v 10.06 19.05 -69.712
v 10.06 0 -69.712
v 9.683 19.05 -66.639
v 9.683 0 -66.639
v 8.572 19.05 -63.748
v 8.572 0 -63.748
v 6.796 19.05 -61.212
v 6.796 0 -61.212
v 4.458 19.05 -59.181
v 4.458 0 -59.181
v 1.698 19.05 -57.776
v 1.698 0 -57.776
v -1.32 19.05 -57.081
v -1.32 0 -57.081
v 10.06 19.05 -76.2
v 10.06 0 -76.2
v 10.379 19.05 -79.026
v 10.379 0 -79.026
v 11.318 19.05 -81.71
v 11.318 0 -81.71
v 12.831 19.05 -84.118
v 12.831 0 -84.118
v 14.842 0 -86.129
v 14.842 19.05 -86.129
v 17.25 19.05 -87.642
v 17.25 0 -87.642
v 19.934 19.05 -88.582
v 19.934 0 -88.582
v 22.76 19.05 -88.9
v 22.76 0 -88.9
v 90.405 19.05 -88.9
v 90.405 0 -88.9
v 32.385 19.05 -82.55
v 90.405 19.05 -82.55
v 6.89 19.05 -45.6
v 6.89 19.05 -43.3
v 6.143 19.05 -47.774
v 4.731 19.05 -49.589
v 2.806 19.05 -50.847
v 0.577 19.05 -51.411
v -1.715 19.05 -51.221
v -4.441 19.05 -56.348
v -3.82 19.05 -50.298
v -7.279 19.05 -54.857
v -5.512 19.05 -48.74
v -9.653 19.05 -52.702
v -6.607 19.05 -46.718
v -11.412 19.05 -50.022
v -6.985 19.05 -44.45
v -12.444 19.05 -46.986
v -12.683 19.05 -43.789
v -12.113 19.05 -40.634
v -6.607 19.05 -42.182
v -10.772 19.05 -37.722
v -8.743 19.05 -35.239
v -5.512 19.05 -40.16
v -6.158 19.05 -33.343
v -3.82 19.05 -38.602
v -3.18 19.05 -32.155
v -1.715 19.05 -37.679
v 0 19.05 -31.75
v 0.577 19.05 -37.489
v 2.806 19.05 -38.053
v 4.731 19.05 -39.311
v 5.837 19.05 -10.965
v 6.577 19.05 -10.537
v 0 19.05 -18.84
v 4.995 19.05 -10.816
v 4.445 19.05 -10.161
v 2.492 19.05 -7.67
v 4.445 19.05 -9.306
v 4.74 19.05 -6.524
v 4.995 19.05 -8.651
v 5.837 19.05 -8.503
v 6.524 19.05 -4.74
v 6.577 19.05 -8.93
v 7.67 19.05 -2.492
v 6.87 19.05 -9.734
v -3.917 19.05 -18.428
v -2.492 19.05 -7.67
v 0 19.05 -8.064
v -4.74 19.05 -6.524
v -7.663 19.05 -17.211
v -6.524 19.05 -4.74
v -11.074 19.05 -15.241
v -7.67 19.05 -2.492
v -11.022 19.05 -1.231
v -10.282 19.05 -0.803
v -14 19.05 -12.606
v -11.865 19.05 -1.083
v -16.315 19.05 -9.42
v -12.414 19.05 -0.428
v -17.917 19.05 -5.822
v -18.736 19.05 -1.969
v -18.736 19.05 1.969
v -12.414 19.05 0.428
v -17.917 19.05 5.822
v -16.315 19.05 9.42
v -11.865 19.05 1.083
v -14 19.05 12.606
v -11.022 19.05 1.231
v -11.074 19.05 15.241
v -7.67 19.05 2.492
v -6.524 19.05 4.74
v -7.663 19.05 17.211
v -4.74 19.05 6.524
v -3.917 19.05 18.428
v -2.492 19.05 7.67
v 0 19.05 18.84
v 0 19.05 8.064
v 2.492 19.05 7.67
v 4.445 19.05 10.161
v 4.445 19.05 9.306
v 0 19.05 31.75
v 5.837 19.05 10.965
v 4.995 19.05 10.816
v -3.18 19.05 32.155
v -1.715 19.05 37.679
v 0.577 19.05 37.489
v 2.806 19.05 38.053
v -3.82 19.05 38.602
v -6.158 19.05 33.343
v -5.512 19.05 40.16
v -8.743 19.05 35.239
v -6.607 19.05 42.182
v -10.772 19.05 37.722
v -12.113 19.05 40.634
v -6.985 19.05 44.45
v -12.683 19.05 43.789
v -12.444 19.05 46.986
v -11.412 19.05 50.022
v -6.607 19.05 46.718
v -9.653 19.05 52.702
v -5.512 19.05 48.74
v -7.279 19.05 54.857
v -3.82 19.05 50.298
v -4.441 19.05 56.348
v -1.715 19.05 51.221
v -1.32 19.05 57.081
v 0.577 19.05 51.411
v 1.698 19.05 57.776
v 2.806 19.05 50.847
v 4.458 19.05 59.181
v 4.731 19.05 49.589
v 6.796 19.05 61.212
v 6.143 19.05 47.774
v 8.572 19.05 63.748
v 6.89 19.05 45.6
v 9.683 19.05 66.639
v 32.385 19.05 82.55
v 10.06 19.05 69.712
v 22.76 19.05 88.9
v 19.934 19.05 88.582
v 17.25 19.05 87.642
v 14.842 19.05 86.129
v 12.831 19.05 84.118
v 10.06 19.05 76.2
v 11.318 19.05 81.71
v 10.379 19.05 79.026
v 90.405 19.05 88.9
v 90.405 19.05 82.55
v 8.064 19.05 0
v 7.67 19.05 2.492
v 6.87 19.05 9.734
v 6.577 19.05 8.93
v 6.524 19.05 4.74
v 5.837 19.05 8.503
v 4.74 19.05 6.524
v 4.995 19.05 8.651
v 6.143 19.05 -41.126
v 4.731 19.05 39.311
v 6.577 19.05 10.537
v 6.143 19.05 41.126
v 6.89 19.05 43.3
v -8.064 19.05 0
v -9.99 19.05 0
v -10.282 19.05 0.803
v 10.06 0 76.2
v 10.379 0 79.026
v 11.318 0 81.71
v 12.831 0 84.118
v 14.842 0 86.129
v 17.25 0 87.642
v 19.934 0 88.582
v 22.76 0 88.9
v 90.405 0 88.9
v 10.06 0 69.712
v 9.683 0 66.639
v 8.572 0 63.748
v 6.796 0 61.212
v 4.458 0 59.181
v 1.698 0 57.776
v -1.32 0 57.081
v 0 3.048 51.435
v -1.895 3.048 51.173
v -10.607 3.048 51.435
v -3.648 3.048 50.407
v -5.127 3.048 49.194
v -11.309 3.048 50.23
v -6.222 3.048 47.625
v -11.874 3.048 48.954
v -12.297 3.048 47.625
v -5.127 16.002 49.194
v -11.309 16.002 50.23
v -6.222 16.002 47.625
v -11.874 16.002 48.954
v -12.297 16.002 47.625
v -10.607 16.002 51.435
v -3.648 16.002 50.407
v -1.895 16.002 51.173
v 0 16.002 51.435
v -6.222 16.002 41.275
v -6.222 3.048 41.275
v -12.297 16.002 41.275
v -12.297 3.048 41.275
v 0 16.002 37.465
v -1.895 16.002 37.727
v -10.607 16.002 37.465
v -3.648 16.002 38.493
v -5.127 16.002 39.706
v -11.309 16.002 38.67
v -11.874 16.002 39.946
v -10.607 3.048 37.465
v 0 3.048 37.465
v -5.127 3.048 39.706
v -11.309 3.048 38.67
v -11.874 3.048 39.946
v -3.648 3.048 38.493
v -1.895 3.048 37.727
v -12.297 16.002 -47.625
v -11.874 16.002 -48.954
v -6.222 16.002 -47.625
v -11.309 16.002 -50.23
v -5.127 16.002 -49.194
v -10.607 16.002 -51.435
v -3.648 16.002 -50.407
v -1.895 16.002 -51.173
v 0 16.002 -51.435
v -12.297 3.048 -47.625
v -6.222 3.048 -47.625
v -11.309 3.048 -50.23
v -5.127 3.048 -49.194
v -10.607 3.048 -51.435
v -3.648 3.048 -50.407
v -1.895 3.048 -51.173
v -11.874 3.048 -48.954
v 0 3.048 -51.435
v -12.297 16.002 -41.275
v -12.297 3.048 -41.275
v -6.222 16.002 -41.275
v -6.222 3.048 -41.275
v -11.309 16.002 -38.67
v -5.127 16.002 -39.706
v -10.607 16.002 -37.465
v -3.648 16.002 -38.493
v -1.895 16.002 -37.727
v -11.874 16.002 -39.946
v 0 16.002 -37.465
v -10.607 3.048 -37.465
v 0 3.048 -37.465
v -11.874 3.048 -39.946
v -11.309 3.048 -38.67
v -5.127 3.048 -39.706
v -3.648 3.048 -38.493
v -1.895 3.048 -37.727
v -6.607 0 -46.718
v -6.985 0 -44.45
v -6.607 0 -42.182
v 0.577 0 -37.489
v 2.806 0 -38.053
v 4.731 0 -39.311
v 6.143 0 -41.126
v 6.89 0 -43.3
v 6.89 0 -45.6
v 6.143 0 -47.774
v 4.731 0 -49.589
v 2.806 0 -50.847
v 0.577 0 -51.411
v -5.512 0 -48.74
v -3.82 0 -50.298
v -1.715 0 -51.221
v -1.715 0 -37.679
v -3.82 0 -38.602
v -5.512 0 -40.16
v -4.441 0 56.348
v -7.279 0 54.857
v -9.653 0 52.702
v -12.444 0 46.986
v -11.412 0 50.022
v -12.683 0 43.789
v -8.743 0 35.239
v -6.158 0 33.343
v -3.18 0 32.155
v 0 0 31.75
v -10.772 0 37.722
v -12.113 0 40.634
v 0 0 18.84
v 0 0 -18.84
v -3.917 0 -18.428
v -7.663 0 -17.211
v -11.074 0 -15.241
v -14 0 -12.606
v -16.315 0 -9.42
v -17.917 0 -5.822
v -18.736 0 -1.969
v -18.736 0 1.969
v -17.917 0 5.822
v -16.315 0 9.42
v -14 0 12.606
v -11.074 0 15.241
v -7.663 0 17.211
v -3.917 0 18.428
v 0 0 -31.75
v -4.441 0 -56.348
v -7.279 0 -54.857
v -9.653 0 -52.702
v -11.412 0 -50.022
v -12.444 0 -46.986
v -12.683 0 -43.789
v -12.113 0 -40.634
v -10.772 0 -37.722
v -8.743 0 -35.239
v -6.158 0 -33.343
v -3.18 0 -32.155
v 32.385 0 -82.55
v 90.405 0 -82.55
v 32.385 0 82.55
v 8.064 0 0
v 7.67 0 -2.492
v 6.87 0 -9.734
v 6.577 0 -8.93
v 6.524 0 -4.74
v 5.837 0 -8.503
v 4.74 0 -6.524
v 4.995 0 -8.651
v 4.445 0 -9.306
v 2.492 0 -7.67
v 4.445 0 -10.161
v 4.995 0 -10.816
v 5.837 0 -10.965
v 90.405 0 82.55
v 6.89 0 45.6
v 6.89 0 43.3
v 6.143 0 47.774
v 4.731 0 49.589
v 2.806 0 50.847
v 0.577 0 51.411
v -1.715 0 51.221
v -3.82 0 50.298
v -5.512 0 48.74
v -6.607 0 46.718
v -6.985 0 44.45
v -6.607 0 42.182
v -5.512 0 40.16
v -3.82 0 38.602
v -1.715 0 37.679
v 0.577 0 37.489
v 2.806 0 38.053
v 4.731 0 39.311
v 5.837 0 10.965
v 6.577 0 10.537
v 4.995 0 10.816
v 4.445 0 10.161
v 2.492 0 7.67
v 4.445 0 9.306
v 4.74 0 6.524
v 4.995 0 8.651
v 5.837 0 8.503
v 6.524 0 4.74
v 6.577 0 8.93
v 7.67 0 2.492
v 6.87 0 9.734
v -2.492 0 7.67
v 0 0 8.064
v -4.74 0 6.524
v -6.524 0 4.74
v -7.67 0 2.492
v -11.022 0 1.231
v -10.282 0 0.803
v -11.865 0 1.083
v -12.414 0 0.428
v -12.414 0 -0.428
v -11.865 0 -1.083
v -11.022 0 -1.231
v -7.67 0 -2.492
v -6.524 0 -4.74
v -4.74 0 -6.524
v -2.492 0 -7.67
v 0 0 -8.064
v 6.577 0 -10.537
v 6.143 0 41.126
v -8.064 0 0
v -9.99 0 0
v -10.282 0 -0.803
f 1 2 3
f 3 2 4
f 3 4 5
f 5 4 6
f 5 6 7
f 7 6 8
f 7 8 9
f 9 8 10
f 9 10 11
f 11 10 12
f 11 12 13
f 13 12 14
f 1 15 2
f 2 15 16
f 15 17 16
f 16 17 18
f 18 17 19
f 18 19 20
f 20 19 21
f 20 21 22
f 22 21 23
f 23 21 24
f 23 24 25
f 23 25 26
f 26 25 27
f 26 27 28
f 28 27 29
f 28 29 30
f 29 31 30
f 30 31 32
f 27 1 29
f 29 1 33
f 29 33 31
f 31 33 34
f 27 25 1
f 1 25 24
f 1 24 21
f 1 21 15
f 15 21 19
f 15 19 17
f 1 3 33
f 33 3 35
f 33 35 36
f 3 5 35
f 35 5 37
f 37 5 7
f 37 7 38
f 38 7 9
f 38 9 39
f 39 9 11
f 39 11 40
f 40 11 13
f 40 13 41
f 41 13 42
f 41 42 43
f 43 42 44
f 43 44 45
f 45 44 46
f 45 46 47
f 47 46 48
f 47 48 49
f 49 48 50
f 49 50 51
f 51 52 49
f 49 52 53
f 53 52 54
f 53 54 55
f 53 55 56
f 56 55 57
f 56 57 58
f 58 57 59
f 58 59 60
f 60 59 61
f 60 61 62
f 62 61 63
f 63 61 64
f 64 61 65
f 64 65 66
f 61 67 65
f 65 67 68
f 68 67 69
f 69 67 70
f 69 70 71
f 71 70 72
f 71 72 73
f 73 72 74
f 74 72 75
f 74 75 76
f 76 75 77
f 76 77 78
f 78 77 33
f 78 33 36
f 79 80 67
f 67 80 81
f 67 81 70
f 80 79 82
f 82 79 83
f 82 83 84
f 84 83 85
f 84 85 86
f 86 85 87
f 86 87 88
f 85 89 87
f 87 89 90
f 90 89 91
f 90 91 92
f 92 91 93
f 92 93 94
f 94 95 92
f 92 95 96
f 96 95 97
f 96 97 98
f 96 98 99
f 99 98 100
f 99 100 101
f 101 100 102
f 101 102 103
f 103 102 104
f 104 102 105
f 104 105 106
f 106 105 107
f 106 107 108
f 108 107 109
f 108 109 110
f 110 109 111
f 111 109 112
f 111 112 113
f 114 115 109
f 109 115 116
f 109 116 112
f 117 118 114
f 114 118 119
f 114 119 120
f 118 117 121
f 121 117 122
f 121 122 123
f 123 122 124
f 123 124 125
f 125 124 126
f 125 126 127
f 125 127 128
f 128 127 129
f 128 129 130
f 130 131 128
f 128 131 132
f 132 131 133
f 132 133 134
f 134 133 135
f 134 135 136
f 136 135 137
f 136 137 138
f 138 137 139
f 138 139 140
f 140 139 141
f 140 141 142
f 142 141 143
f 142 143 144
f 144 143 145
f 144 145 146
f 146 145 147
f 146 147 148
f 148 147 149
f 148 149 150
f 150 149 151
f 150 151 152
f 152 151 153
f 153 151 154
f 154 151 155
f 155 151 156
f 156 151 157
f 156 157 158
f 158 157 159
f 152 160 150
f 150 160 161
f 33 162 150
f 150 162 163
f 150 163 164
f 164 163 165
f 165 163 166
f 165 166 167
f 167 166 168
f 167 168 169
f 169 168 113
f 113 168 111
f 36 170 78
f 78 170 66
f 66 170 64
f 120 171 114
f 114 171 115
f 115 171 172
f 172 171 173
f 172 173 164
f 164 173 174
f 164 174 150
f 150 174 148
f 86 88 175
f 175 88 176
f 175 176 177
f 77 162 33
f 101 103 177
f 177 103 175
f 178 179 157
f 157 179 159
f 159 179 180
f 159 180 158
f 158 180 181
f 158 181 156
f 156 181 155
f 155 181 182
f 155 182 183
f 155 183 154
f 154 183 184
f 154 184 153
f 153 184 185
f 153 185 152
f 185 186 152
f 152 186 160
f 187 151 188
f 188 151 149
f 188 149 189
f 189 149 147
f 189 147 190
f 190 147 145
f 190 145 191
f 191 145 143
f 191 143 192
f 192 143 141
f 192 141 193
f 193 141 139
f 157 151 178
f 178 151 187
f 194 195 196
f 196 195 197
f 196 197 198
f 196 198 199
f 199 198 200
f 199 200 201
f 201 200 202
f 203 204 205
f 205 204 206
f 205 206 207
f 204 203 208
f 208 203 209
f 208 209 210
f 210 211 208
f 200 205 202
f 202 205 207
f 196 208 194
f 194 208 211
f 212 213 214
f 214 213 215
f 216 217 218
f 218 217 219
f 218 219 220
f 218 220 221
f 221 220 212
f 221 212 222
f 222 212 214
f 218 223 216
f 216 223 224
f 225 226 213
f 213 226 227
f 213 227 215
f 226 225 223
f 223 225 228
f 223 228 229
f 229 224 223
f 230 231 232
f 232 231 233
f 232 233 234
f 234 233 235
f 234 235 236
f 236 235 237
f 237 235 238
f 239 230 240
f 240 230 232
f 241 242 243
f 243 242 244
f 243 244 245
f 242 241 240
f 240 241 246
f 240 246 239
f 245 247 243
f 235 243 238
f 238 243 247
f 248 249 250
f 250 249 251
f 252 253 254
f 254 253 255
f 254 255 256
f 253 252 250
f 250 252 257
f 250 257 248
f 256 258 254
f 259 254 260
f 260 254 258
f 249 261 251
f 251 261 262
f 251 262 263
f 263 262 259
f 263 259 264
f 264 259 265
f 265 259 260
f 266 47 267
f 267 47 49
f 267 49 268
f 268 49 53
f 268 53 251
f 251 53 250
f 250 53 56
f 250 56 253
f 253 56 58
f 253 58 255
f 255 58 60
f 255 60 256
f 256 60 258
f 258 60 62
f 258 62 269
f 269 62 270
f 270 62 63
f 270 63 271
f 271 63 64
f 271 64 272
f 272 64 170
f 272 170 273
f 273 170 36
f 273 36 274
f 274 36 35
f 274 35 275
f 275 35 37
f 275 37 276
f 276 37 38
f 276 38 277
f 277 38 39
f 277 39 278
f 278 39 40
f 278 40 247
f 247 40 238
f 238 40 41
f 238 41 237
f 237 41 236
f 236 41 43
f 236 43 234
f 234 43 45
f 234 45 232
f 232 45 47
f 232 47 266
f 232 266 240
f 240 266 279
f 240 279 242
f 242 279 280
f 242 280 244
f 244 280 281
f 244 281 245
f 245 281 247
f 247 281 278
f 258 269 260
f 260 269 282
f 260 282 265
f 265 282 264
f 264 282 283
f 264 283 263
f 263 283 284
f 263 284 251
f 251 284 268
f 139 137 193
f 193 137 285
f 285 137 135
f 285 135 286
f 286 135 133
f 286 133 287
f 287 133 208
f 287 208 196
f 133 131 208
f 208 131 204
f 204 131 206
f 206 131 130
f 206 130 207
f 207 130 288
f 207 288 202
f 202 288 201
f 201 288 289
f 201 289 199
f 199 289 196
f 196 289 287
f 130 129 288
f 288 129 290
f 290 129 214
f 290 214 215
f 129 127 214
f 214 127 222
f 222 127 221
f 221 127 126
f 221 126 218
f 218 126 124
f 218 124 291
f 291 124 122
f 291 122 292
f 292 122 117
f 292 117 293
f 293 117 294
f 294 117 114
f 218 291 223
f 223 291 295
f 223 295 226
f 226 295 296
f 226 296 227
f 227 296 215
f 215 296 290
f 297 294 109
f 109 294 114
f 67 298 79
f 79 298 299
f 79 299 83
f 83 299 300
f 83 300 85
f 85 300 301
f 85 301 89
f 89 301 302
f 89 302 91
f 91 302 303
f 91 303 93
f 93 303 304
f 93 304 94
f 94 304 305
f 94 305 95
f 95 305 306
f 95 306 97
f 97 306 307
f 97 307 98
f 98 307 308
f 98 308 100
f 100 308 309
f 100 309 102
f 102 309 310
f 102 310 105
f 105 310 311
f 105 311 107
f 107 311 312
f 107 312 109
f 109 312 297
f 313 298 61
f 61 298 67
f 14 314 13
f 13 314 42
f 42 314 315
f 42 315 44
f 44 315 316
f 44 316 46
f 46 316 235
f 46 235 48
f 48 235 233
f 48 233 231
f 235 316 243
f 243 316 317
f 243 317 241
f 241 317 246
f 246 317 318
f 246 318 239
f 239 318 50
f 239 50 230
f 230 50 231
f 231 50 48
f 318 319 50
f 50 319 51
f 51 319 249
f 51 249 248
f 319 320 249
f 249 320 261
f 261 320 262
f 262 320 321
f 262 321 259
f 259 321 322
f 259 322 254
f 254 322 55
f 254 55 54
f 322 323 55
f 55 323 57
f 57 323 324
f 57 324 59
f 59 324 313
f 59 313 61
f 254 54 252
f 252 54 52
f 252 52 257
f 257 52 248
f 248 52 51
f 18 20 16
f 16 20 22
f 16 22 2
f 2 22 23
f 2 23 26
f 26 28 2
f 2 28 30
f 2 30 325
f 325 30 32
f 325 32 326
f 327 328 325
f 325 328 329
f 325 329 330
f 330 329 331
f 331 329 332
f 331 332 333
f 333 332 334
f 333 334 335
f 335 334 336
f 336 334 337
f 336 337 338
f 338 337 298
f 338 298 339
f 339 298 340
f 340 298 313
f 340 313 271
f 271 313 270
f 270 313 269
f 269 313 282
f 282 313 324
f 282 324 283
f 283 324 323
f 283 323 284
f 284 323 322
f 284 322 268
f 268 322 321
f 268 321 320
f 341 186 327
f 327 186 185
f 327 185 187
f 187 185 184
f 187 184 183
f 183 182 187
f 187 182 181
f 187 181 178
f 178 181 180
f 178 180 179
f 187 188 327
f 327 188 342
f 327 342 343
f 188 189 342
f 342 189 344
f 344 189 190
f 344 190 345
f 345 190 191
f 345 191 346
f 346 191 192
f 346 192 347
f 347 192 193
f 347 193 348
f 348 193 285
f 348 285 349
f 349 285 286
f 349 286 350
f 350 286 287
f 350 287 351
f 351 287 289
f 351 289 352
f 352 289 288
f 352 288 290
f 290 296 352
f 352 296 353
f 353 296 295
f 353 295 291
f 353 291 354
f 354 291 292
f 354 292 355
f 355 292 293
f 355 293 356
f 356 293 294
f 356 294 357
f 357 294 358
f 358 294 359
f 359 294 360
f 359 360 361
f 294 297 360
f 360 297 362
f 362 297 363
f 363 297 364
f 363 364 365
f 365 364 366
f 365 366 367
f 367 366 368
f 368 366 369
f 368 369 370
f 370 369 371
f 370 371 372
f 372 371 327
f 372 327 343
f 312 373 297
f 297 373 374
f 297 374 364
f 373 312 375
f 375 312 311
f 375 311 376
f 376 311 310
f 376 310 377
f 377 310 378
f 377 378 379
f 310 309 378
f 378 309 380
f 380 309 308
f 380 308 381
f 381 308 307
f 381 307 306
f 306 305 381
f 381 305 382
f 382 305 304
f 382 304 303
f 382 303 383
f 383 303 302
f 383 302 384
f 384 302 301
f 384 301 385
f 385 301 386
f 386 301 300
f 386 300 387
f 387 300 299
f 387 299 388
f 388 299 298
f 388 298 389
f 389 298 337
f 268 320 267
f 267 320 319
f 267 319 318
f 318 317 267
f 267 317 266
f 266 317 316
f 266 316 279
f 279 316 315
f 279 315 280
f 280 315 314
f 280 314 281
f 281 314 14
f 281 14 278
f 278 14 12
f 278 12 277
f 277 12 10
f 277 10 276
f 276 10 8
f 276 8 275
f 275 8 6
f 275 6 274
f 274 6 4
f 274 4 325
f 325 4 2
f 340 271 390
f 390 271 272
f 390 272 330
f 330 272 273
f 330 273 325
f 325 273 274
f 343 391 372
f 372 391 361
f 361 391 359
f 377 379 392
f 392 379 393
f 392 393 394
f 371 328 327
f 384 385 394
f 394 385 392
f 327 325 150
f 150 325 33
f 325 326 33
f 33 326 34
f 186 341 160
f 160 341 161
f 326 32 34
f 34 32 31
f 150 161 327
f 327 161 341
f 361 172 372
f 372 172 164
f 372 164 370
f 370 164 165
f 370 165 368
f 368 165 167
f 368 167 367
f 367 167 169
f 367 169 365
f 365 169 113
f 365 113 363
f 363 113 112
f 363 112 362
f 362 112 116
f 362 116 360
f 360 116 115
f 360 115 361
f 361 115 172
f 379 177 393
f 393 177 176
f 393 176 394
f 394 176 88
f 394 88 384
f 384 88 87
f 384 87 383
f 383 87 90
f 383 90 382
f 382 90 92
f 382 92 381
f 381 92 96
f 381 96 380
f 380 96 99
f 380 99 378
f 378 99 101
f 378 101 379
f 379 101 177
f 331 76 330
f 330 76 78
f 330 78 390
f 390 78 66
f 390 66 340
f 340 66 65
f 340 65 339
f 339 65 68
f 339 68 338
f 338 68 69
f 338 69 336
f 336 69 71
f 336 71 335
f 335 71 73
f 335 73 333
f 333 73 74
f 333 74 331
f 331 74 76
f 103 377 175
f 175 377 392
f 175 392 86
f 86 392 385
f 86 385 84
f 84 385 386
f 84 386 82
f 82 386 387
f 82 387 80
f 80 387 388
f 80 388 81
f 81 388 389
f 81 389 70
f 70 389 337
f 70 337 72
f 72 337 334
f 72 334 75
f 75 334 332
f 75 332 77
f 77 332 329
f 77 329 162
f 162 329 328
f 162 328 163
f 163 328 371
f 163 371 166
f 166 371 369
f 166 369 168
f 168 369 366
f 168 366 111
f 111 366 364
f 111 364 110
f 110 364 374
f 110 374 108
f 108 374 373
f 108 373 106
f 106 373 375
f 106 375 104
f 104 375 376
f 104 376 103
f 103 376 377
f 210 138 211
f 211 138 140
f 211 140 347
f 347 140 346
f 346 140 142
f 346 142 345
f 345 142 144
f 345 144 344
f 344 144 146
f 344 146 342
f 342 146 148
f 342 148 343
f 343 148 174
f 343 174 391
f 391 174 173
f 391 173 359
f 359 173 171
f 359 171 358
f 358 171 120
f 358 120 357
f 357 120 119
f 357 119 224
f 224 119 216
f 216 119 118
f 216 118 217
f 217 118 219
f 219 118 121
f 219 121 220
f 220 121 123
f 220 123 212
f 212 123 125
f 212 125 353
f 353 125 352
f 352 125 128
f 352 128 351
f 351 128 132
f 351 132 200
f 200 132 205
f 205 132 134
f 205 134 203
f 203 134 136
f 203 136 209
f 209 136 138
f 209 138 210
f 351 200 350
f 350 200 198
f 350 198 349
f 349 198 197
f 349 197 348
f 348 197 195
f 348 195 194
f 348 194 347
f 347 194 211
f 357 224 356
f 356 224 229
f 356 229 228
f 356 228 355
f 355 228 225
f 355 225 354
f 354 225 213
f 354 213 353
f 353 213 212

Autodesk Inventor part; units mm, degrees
ref_plane "YZ Plane" through (0, 0, 0) normal (1, 0, 0) x (0, 1, 0)
sketch "Sketch1" plane through (0, 0, 0) normal (0, 1, 0) x (-1, 0, 0)
  circle A0 centre (0, 0) radius 8.0645
  circle A1 centre (0, -44.45) radius 6.985
  circle A2 centre (0, 44.45) radius 6.985
  line L0 (-39.6048, 88.9) -> (39.6048, 88.9)
  line L1 (39.6048, 88.9) -> (39.6048, -88.9)
  line L2 (39.6048, -88.9) -> (-39.6048, -88.9)
  line L3 (-39.6048, -88.9) -> (-39.6048, 88.9)
  line L4 (-39.6048, 88.9) -> (39.6048, -88.9) construction
  line L5 (39.6048, 88.9) -> (-39.6048, -88.9) construction
  line L6 (10.9754, 63.5) -> (10.9754, 0) construction
  point P0 (0, 0)
  point P1 (0, 0)
  dimension "d0" = 16.129
  dimension "d1" = 13.97
  dimension "d2" = 13.97
  dimension "d28" = 177.8
  dimension "d82" = 44.45
  dimension "d83" = 44.45
extrude "Extrusion4" add sketch "Sketch1" along normal blind 19.05
ref_plane "Work Plane2" through (0, 19.05, 0) normal (0, 1, 0) x (1, 0, 0)
sketch "Sketch2" plane through (0, 19.05, 0) normal (0, 1, 0) x (1, 0, 0)
  circle A0 centre (-11.2395, 0) radius 1.25
  circle A1 centre (0, 0) radius 7.94 projected
  circle A2 centre (5.6197, -9.7337) radius 1.25
  circle A3 centre (5.6198, 9.7337) radius 1.25
  dimension "d11" = 2.5
  dimension "d12" = 11.2395
  dimension "d15" = 360
ref_plane "Work Plane1" through (0, 19.05, 0) normal (0, 1, 0) x (1, 0, 0)
extrude "Extrusion5" cut sketch "Sketch2" against normal up to next contours A0 | A2 | A3
sketch "Sketch6" plane through (0, 19.05, 0) normal (0, 1, 0) x (1, 0, 0)
  circle A0 centre (0, 0) radius 8.0645 projected
  arc A1 (0, 18.8395) -> (0, -18.8395) centre (0, 0) ccw
  circle A2 centre (-11.2395, 0) radius 1.25 projected
  circle A3 centre (0, -44.45) radius 6.985 projected
  circle A4 centre (0, -44.45) radius 6.985 projected
  arc A5 (0, -31.75) -> (0, -57.15) centre (0, -44.45) ccw
  line L0 (54.9709, 0) -> (-46.1054, 0) construction
  arc A6 (0, 57.15) -> (0, 31.75) centre (0, 44.45) ccw
  line L1 (10.0601, -57.15) -> (10.0601, -88.9)
  line L2 (10.0601, -88.9) -> (-39.6048, -88.9)
  line L3 (-39.6048, 88.9) -> (-39.6048, -88.9) projected
  line L4 (-39.6048, -88.9) -> (-39.6048, 88.9)
  line L5 (-39.6048, 88.9) -> (10.0601, 88.9)
  line L6 (10.0601, 57.15) -> (10.0601, 88.9)
  line L7 (0, 57.15) -> (10.0601, 57.15)
  line L8 (0, 31.75) -> (0, 18.8395)
  line L9 (0, -18.8395) -> (0, -31.75)
  line L10 (10.0601, -57.15) -> (0, -57.15)
  point P0 (0, 0)
  dimension "d77" = 6.35
  dimension "d103" = 12.7
sketch "Sketch12" plane through (0, 19.05, 0) normal (0, 1, 0) x (1, 0, 0)
  line L0 (39.6048, -88.9) -> (39.6048, 88.9) projected
  line L1 (39.6048, -82.55) -> (19.685, -82.55)
  line L2 (19.685, -82.55) -> (19.685, 82.55)
  line L3 (19.685, 82.55) -> (39.6048, 82.55)
  line L4 (39.6048, 82.55) -> (39.6048, -82.55)
  line L5 (39.6048, 88.9) -> (-39.6048, 88.9) projected
  line L6 (-39.6048, -88.9) -> (39.6048, -88.9) projected
  circle A0 centre (0, -44.45) radius 6.985 projected
  point P0 (0, 0)
  point P1 (12.7, 88.9)
  point P2 (12.7, -88.9)
  point P3 (0, 88.9)
  point P4 (10.0601, 88.9)
  point P5 (10.0601, -88.9)
  dimension "d72" = 6.35
  dimension "d73" = 6.35
  dimension "d74" = 12.7
extrude "Extrusion10" cut sketch "Sketch12" against normal up to next contours L1 L2 L3 L0
sketch "Sketch13" plane through (39.6048, 0, 88.9) normal (1, 0, 0) x (0, 0, -1)
  line L0 (0, 0) -> (0, 19.05) projected
  line L1 (171.45, 0) -> (6.35, 0) projected
  line L2 (0, 19.05) -> (6.35, 19.05)
  line L3 (6.35, 19.05) -> (6.35, 0)
  line L4 (6.35, 0) -> (0, 0)
  line L5 (0, 0) -> (0, 19.05)
  line L6 (171.45, 19.05) -> (171.45, 0) projected
  line L7 (177.8, 19.05) -> (177.8, 0) projected
  line L8 (171.45, 19.05) -> (177.8, 19.05)
  line L9 (177.8, 19.05) -> (177.8, 0)
  line L10 (177.8, 0) -> (171.45, 0)
  line L11 (171.45, 0) -> (171.45, 19.05)
  point P0 (88.9, 0)
extrude "Extrusion11" add sketch "Sketch13" along normal blind 50.8
sketch "Sketch14" plane through (19.685, 19.05, 82.55) normal (1, 0, 0) x (0, 0, -1)
  line L0 (0, 0) -> (0, -19.05) projected
  line L1 (165.1, -19.05) -> (0, -19.05) projected
  line L2 (0, 0) -> (165.1, 0)
  line L3 (165.1, 0) -> (165.1, -19.05)
  line L4 (165.1, -19.05) -> (0, -19.05)
  line L5 (0, -19.05) -> (0, 0)
  point P0 (82.55, -19.05)
extrude "Extrusion12" add sketch "Sketch14" along normal blind 12.7
extrude "Extrusion14" cut sketch "Sketch6" against normal up to next contours A1 L9 A5 L10 L1 L2 L3 L5 L6 L7 A6 L8
sketch "Sketch16" plane through (0, 19.05, -31.75) normal (-1, 0, 0) x (0, 0, 1)
  line L0 (-15.875, -3.048) -> (-15.875, -16.002)
  line L1 (-19.685, -16.002) -> (-19.685, -3.048)
  line L2 (-19.685, -3.048) -> (-15.875, -3.048)
  line L3 (-9.525, -3.048) -> (-5.715, -3.048)
  line L4 (-19.685, -16.002) -> (-15.875, -16.002)
  line L5 (-9.525, -16.002) -> (-5.715, -16.002)
  line L6 (-5.715, -3.048) -> (-5.715, -16.002)
  line L7 (-9.525, -3.048) -> (-9.525, -16.002)
  point P0 (31.75, -19.05)
  dimension "d106" = 3.81
  dimension "d112" = 3.81
extrude "Extrusion15" cut sketch "Sketch16" along normal up to next
mirror "Mirror3" about plane through (0, 0, 0) normal (0, 0, 1) of "Extrusion15"
fillet "Fillet8" radius 12.7 4 edges at (10.0601, 9.525, 57.15) (10.0601, 9.525, 88.9) (10.0601, 9.525, -88.9) (10.0601, 9.525, -57.15)
properties part number "AlteredPlatform"
